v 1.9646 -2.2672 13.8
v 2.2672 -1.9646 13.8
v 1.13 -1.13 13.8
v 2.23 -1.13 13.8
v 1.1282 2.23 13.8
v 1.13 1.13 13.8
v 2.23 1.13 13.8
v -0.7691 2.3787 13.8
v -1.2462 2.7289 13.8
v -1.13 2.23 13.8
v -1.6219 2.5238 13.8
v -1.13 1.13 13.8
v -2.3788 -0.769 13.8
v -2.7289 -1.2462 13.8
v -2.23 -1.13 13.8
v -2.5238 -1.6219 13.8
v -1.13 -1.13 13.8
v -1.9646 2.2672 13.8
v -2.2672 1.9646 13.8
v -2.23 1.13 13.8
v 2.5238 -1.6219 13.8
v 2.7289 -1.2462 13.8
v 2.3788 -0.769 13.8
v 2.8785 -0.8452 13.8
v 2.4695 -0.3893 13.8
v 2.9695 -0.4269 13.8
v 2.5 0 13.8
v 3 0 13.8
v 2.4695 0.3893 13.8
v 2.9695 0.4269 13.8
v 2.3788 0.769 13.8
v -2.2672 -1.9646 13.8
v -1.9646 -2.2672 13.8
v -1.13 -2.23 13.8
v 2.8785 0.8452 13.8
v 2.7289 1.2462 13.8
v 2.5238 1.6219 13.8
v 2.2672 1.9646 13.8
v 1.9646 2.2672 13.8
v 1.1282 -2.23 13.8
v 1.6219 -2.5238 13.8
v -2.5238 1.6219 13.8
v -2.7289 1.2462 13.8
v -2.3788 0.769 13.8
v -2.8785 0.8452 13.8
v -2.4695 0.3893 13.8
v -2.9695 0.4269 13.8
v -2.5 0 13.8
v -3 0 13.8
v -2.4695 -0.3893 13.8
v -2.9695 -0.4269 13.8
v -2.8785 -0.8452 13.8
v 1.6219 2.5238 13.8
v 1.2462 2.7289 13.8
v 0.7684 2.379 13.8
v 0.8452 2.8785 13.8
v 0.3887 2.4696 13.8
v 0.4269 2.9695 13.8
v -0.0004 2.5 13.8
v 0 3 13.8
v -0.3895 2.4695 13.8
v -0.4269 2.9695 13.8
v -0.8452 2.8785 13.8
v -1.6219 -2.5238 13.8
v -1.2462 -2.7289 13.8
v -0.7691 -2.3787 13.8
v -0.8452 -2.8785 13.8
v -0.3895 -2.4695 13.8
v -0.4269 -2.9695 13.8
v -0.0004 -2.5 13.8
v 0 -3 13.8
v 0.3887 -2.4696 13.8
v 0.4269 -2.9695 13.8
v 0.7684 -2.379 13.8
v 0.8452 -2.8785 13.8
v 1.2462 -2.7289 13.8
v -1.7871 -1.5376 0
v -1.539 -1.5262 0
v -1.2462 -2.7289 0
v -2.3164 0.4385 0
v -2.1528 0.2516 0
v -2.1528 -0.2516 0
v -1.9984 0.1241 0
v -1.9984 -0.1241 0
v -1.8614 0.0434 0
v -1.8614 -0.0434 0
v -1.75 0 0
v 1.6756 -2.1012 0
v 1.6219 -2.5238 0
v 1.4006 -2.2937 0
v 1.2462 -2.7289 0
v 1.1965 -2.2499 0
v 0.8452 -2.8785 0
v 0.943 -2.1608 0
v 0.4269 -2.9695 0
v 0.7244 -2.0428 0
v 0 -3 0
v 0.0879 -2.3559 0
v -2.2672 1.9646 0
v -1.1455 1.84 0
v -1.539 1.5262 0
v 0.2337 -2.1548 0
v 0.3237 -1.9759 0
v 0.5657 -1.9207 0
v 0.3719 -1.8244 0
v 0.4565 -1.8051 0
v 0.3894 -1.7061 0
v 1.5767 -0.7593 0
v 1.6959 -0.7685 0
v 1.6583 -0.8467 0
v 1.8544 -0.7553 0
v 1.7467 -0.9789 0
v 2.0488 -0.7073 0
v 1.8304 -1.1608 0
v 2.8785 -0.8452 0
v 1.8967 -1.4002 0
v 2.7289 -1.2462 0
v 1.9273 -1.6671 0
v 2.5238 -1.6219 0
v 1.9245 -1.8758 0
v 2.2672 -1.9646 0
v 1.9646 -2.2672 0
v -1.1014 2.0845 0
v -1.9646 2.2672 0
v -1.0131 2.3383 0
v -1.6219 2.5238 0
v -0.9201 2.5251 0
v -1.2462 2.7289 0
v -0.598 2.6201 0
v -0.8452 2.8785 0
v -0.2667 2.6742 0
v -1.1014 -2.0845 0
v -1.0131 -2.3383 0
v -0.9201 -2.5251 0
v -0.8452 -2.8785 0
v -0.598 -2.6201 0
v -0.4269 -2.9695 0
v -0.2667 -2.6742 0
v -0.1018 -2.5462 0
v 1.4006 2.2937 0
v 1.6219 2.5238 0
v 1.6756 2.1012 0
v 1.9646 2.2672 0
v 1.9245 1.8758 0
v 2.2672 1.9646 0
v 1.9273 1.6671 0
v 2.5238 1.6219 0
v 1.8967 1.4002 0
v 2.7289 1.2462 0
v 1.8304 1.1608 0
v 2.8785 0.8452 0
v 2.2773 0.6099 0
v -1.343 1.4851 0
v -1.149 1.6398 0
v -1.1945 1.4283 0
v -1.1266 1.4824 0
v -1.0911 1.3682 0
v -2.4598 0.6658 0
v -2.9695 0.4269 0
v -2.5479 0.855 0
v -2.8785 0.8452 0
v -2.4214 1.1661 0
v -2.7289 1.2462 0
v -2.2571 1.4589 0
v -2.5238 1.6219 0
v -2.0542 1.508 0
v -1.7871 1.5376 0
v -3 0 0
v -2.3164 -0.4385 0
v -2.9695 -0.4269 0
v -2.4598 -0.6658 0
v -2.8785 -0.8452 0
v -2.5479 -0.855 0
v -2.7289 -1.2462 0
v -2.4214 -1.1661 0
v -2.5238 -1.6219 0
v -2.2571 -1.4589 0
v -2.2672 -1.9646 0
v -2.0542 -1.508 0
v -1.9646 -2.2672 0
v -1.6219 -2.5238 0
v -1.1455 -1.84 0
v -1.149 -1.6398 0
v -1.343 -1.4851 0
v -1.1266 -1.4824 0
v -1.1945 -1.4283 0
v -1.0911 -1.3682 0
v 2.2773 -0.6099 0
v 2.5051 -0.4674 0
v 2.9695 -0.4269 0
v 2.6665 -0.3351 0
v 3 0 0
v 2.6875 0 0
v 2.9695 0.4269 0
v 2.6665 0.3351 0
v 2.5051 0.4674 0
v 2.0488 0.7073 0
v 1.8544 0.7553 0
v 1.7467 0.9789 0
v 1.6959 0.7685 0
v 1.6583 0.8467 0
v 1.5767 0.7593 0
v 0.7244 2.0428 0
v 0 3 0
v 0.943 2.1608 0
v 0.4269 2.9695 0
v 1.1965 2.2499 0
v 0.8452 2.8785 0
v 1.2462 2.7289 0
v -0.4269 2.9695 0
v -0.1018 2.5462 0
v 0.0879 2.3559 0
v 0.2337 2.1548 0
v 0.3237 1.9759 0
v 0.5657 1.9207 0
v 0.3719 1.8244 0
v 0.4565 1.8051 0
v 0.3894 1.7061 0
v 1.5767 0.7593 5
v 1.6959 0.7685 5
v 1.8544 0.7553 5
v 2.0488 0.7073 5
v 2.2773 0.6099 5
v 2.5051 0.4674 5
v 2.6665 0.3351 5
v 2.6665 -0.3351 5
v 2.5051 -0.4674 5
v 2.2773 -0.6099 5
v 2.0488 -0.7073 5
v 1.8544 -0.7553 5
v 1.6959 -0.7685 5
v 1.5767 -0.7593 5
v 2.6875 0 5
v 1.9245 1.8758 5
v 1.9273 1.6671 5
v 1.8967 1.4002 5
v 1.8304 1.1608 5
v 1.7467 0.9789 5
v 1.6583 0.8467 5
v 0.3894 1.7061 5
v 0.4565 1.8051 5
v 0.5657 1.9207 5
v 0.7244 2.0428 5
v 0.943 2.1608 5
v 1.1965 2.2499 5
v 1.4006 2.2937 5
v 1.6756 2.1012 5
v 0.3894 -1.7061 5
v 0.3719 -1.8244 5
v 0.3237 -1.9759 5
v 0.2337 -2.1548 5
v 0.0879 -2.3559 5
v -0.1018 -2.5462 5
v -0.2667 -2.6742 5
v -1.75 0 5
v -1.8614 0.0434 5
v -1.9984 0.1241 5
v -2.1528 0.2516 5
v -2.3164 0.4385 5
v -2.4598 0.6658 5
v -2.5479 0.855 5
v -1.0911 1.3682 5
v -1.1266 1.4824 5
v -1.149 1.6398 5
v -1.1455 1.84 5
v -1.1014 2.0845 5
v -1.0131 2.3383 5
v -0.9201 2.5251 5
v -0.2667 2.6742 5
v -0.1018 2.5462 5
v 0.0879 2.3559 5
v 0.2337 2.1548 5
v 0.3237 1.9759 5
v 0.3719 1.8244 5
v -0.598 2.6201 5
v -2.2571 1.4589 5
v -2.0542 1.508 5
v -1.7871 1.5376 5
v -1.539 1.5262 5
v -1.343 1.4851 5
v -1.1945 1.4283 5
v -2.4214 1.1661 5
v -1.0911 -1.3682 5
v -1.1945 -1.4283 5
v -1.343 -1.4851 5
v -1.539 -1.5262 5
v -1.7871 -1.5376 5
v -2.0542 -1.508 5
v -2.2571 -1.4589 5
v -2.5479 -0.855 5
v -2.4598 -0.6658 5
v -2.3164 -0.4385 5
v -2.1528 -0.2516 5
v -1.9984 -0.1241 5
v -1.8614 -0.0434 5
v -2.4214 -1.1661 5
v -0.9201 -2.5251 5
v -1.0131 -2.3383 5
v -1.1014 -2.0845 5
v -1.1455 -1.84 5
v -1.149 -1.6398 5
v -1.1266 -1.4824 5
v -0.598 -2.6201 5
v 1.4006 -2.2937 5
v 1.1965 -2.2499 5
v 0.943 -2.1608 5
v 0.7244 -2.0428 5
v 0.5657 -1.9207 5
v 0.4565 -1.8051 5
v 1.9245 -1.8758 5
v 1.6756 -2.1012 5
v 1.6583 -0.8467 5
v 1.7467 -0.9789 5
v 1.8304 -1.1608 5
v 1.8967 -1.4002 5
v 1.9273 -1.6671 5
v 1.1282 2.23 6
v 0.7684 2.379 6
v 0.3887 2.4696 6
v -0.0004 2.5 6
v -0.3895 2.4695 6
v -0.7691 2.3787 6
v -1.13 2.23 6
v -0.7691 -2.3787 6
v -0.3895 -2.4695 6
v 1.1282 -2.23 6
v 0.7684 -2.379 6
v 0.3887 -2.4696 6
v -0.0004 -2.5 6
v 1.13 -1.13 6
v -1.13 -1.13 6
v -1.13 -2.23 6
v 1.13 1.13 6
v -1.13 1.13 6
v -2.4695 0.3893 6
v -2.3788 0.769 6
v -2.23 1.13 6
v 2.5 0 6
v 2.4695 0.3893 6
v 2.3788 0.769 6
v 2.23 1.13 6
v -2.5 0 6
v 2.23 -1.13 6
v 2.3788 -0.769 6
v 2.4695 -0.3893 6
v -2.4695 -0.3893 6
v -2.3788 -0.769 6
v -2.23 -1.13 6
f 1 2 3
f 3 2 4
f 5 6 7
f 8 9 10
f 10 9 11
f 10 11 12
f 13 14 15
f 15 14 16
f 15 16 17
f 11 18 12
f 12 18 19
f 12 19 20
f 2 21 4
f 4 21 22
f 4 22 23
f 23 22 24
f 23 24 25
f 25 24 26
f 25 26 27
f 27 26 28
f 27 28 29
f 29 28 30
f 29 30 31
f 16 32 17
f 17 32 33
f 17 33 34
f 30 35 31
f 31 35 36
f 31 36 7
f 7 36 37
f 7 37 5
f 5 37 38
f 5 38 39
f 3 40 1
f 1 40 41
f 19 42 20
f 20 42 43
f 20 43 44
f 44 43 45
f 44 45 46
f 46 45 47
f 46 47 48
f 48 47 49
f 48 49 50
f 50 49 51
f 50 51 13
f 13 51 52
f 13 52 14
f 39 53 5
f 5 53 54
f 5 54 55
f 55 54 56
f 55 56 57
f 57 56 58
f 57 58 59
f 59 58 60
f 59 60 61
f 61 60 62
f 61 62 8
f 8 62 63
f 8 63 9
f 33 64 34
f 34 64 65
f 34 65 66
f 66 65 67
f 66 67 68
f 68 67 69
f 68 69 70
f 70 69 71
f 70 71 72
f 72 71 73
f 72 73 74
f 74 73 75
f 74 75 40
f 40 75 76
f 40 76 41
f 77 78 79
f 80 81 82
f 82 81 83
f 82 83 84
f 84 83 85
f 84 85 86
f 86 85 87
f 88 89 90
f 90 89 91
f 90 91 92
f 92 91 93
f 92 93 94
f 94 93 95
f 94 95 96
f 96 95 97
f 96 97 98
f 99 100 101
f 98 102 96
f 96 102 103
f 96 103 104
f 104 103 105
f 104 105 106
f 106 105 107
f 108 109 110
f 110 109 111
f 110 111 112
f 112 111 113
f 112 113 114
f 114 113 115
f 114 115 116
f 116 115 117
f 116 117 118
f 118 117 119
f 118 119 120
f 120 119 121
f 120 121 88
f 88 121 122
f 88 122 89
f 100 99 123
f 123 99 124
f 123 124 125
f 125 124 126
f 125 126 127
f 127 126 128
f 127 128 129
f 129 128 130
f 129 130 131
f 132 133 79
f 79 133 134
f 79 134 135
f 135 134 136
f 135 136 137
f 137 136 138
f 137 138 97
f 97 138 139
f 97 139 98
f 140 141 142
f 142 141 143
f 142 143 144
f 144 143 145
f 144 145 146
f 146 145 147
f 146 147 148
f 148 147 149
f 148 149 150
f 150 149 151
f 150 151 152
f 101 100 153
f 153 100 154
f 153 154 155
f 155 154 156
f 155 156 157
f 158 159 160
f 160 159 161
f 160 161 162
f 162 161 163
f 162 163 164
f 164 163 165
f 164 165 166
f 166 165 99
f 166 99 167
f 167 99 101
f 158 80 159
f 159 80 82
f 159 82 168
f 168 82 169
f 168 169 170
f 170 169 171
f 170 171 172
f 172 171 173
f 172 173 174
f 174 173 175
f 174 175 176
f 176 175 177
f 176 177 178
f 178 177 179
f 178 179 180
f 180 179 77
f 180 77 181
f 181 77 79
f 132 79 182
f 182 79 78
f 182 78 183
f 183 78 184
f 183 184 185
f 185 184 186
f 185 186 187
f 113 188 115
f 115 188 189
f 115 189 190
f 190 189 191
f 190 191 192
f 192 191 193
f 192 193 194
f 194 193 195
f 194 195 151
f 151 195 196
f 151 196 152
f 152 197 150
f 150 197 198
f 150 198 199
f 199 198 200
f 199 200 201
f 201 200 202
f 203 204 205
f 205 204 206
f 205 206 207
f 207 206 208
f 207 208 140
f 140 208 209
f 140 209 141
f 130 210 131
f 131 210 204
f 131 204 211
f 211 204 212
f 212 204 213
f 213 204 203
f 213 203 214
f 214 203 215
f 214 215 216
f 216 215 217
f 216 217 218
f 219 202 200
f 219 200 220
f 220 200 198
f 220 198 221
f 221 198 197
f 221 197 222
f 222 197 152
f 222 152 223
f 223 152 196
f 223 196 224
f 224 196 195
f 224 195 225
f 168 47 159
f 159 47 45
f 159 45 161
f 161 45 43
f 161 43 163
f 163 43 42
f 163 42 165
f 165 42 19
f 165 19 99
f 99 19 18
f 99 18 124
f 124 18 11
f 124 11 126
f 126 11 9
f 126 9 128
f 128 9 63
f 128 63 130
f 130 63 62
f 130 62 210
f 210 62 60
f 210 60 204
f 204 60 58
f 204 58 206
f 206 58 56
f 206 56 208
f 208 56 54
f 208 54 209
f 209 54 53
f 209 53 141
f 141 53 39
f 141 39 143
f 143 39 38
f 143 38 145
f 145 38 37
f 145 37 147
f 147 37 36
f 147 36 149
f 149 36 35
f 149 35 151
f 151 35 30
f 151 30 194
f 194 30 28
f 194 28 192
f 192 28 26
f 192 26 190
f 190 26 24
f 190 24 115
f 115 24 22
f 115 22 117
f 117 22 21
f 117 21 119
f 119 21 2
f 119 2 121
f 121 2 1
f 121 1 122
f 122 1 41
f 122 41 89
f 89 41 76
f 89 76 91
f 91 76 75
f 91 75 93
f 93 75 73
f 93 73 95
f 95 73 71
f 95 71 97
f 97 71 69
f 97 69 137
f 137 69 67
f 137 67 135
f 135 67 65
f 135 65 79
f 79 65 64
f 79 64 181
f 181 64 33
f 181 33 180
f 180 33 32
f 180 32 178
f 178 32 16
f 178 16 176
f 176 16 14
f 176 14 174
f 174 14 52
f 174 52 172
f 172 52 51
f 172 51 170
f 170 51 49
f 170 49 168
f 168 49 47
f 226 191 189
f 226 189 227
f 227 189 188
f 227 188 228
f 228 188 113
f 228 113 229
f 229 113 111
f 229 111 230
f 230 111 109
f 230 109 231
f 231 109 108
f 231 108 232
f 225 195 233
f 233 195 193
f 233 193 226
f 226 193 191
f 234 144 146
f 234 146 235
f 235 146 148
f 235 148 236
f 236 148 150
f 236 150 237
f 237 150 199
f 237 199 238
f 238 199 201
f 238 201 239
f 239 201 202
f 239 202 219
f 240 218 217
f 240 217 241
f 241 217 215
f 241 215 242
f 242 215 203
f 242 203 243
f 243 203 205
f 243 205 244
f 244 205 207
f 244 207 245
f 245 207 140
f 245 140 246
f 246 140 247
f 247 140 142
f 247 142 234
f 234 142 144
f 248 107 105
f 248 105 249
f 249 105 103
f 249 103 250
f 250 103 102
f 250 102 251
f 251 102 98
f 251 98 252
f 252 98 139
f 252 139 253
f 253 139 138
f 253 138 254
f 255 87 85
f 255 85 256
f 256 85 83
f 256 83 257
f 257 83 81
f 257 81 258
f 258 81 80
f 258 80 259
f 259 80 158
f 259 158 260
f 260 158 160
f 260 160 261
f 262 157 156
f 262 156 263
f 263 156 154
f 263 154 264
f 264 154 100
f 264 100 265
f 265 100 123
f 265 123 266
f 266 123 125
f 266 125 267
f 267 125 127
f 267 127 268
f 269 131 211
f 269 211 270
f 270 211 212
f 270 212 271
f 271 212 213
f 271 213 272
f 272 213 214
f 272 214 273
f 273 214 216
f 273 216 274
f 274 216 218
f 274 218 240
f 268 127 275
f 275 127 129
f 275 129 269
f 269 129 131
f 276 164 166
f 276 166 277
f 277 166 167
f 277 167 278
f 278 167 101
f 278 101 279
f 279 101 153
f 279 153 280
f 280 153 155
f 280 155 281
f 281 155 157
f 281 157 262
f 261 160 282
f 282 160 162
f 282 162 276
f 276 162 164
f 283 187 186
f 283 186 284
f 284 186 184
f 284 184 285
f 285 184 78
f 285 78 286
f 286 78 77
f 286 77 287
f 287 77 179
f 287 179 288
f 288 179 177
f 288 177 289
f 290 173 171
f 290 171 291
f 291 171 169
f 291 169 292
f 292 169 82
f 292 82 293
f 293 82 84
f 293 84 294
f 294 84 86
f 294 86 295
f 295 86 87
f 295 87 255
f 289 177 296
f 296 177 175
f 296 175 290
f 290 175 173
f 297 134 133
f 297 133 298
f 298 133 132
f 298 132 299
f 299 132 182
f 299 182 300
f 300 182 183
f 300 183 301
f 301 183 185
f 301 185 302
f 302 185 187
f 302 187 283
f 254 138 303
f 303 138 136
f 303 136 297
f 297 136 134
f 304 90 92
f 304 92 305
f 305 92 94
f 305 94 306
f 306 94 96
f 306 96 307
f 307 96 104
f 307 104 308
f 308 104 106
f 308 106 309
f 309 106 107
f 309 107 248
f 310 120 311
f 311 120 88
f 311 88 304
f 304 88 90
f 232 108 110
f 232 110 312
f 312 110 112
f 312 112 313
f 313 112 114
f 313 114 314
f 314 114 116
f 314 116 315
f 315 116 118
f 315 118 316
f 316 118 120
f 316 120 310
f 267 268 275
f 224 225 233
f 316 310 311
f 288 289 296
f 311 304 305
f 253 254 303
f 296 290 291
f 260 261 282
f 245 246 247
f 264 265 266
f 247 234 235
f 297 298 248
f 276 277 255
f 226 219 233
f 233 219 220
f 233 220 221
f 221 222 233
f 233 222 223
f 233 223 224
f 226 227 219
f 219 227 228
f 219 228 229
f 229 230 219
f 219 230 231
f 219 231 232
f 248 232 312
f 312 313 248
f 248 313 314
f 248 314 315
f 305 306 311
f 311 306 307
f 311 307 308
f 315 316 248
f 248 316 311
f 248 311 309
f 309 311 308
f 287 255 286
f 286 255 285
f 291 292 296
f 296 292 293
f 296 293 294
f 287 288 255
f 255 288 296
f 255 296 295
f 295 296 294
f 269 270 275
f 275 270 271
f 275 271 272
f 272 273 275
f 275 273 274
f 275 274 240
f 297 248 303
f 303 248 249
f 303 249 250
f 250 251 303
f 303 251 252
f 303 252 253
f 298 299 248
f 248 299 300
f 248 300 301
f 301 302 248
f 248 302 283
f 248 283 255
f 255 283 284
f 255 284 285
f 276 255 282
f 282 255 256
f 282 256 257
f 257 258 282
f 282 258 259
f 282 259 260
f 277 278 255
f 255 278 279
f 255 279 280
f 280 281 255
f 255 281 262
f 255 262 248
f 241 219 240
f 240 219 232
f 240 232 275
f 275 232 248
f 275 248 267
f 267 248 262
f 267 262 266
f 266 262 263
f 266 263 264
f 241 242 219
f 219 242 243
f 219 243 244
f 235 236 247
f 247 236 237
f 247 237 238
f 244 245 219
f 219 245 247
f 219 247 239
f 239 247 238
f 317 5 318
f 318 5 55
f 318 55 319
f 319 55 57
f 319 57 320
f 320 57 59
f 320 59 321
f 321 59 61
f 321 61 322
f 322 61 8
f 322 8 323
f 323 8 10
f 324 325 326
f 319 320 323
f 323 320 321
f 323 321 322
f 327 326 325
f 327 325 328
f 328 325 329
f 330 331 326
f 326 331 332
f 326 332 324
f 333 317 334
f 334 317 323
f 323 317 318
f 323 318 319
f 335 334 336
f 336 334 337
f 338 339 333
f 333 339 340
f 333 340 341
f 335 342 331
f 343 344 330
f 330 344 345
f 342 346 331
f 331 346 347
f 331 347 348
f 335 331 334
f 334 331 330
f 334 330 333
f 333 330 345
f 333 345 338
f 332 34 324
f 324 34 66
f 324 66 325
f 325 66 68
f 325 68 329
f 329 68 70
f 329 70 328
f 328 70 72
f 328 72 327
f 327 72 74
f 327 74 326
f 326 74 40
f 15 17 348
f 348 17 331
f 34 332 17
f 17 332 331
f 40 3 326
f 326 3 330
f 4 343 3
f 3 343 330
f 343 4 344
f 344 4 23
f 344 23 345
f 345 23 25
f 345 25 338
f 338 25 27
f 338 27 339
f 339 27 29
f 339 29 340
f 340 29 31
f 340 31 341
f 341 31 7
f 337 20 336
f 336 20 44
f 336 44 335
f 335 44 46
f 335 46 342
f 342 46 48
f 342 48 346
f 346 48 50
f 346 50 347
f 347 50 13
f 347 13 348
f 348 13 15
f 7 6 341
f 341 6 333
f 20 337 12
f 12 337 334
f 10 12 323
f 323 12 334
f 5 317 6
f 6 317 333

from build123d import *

# Parameters (mm, degrees)
SKETCH_1_R               = 3
SKETCH_1_R_2             = 1.5625
EXTRUDE_1_DEPTH          = 5
CUT_EXTRUDE_2_DEPTH      = 7.557438524
PATTERN_CIRCULAR_1_COUNT = 7
SKETCH_2_R               = 3
EXTRUDE_2_DEPTH          = 8.8
CUT_EXTRUDE_START        = 8.8
CUT_EXTRUDE_3_DEPTH      = 7.8


with BuildPart() as part:
    # 草图1 → 凸台-拉伸1 (new body)
    with BuildSketch(Plane.XY):
        Circle(SKETCH_1_R)
        Circle(SKETCH_1_R_2, mode=Mode.SUBTRACT)
    extrude(amount=EXTRUDE_1_DEPTH)

    # 草图1<3> → 切除-拉伸2 (cut, through all)
    with BuildSketch(Plane.XY):
        with BuildLine():
            Line((1.473941588, 0.729213103), (1.40047846, 0.692868192))
            ThreePointArc((1.40047846, 0.692868192), (1.521455528, 0.355779887), (1.5625, 0))
            ThreePointArc((1.5625, 0), (1.521455528, -0.355779887), (1.40047846, -0.692868192))
            Line((1.40047846, -0.692868192), (1.473941588, -0.729213103))
            add(Edge.make_bspline(
                [(1.473941588, -0.729213103), (1.485175683, -0.734771023), (1.517731995, -0.74785023), (1.58325759, -0.763025647), (1.69185053, -0.772739945), (1.833066262, -0.76334643), (2.010800821, -0.725727848), (2.210262557, -0.650798613), (2.403274907, -0.54458002), (2.544769721, -0.44101945), (2.63009006, -0.368231772), (2.666526001, -0.335104965)],
                knots=[0, 0, 0, 0, 0, 0.005604068, 0.015718248, 0.029959916, 0.048733667, 0.068727063, 0.096888892, 0.125050566, 0.147116643, 0.147116643, 0.147116643, 0.147116643, 0.147116643], degree=4))
            ThreePointArc((2.666526001, -0.335104965), (2.682251375, -0.167880349), (2.6875, 0))
            ThreePointArc((2.6875, 0), (2.682251375, 0.167880349), (2.666526001, 0.335104965))
            add(Edge.make_bspline(
                [(1.473941588, 0.729213103), (1.485175683, 0.734771023), (1.517731995, 0.74785023), (1.58325759, 0.763025647), (1.69185053, 0.772739945), (1.833066262, 0.76334643), (2.010800821, 0.725727848), (2.210262557, 0.650798613), (2.403274907, 0.54458002), (2.544769721, 0.44101945), (2.63009006, 0.368231772), (2.666526001, 0.335104965)],
                knots=[0, 0, 0, 0, 0, 0.005604068, 0.015718248, 0.029959916, 0.048733667, 0.068727063, 0.096888892, 0.125050566, 0.147116643, 0.147116643, 0.147116643, 0.147116643, 0.147116643], degree=4))
        make_face()
    cut_extrude_2 = extrude(amount=CUT_EXTRUDE_2_DEPTH, mode=Mode.SUBTRACT)

    # 阵列(圆周)1: 切除-拉伸2 ×7 about axis
    pattern_circular_1_axis = Axis((0, 0, 5), (0, 0, 1))
    for i in range(1, PATTERN_CIRCULAR_1_COUNT):
        add(cut_extrude_2.rotate(pattern_circular_1_axis, i * 360 / PATTERN_CIRCULAR_1_COUNT), mode=Mode.SUBTRACT)

    # 草图2 → 凸台-拉伸2 (add)
    with BuildSketch(Plane.XY.offset(5)):
        Circle(SKETCH_2_R)
    extrude(amount=EXTRUDE_2_DEPTH)

    # 草图2<4> → 切除-拉伸3 (cut)
    with BuildSketch(Plane.XY.offset(5).offset(CUT_EXTRUDE_START)):
        with BuildLine():
            ThreePointArc((1.130029762, 2.230029762), (0, 2.5), (-1.130029762, 2.230029762))
            Line((-1.130029762, 2.230029762), (-1.130029762, 1.130029762))
            Line((-1.130029762, 1.130029762), (-2.230029762, 1.130029762))
            ThreePointArc((-2.230029762, 1.130029762), (-2.5, 0), (-2.230029762, -1.130029762))
            Line((-2.230029762, -1.130029762), (-1.130029762, -1.130029762))
            Line((-1.130029762, -1.130029762), (-1.130029762, -2.230029762))
            ThreePointArc((-1.130029762, -2.230029762), (0, -2.5), (1.130029762, -2.230029762))
            Line((1.130029762, -2.230029762), (1.130029762, -1.130029762))
            Line((1.130029762, -1.130029762), (2.230029762, -1.130029762))
            ThreePointArc((2.230029762, -1.130029762), (2.5, 0), (2.230029762, 1.130029762))
            Line((2.230029762, 1.130029762), (1.130029762, 1.130029762))
            Line((1.130029762, 1.130029762), (1.130029762, 2.230029762))
        make_face()
    extrude(amount=-CUT_EXTRUDE_3_DEPTH, mode=Mode.SUBTRACT)


solid = part.part
